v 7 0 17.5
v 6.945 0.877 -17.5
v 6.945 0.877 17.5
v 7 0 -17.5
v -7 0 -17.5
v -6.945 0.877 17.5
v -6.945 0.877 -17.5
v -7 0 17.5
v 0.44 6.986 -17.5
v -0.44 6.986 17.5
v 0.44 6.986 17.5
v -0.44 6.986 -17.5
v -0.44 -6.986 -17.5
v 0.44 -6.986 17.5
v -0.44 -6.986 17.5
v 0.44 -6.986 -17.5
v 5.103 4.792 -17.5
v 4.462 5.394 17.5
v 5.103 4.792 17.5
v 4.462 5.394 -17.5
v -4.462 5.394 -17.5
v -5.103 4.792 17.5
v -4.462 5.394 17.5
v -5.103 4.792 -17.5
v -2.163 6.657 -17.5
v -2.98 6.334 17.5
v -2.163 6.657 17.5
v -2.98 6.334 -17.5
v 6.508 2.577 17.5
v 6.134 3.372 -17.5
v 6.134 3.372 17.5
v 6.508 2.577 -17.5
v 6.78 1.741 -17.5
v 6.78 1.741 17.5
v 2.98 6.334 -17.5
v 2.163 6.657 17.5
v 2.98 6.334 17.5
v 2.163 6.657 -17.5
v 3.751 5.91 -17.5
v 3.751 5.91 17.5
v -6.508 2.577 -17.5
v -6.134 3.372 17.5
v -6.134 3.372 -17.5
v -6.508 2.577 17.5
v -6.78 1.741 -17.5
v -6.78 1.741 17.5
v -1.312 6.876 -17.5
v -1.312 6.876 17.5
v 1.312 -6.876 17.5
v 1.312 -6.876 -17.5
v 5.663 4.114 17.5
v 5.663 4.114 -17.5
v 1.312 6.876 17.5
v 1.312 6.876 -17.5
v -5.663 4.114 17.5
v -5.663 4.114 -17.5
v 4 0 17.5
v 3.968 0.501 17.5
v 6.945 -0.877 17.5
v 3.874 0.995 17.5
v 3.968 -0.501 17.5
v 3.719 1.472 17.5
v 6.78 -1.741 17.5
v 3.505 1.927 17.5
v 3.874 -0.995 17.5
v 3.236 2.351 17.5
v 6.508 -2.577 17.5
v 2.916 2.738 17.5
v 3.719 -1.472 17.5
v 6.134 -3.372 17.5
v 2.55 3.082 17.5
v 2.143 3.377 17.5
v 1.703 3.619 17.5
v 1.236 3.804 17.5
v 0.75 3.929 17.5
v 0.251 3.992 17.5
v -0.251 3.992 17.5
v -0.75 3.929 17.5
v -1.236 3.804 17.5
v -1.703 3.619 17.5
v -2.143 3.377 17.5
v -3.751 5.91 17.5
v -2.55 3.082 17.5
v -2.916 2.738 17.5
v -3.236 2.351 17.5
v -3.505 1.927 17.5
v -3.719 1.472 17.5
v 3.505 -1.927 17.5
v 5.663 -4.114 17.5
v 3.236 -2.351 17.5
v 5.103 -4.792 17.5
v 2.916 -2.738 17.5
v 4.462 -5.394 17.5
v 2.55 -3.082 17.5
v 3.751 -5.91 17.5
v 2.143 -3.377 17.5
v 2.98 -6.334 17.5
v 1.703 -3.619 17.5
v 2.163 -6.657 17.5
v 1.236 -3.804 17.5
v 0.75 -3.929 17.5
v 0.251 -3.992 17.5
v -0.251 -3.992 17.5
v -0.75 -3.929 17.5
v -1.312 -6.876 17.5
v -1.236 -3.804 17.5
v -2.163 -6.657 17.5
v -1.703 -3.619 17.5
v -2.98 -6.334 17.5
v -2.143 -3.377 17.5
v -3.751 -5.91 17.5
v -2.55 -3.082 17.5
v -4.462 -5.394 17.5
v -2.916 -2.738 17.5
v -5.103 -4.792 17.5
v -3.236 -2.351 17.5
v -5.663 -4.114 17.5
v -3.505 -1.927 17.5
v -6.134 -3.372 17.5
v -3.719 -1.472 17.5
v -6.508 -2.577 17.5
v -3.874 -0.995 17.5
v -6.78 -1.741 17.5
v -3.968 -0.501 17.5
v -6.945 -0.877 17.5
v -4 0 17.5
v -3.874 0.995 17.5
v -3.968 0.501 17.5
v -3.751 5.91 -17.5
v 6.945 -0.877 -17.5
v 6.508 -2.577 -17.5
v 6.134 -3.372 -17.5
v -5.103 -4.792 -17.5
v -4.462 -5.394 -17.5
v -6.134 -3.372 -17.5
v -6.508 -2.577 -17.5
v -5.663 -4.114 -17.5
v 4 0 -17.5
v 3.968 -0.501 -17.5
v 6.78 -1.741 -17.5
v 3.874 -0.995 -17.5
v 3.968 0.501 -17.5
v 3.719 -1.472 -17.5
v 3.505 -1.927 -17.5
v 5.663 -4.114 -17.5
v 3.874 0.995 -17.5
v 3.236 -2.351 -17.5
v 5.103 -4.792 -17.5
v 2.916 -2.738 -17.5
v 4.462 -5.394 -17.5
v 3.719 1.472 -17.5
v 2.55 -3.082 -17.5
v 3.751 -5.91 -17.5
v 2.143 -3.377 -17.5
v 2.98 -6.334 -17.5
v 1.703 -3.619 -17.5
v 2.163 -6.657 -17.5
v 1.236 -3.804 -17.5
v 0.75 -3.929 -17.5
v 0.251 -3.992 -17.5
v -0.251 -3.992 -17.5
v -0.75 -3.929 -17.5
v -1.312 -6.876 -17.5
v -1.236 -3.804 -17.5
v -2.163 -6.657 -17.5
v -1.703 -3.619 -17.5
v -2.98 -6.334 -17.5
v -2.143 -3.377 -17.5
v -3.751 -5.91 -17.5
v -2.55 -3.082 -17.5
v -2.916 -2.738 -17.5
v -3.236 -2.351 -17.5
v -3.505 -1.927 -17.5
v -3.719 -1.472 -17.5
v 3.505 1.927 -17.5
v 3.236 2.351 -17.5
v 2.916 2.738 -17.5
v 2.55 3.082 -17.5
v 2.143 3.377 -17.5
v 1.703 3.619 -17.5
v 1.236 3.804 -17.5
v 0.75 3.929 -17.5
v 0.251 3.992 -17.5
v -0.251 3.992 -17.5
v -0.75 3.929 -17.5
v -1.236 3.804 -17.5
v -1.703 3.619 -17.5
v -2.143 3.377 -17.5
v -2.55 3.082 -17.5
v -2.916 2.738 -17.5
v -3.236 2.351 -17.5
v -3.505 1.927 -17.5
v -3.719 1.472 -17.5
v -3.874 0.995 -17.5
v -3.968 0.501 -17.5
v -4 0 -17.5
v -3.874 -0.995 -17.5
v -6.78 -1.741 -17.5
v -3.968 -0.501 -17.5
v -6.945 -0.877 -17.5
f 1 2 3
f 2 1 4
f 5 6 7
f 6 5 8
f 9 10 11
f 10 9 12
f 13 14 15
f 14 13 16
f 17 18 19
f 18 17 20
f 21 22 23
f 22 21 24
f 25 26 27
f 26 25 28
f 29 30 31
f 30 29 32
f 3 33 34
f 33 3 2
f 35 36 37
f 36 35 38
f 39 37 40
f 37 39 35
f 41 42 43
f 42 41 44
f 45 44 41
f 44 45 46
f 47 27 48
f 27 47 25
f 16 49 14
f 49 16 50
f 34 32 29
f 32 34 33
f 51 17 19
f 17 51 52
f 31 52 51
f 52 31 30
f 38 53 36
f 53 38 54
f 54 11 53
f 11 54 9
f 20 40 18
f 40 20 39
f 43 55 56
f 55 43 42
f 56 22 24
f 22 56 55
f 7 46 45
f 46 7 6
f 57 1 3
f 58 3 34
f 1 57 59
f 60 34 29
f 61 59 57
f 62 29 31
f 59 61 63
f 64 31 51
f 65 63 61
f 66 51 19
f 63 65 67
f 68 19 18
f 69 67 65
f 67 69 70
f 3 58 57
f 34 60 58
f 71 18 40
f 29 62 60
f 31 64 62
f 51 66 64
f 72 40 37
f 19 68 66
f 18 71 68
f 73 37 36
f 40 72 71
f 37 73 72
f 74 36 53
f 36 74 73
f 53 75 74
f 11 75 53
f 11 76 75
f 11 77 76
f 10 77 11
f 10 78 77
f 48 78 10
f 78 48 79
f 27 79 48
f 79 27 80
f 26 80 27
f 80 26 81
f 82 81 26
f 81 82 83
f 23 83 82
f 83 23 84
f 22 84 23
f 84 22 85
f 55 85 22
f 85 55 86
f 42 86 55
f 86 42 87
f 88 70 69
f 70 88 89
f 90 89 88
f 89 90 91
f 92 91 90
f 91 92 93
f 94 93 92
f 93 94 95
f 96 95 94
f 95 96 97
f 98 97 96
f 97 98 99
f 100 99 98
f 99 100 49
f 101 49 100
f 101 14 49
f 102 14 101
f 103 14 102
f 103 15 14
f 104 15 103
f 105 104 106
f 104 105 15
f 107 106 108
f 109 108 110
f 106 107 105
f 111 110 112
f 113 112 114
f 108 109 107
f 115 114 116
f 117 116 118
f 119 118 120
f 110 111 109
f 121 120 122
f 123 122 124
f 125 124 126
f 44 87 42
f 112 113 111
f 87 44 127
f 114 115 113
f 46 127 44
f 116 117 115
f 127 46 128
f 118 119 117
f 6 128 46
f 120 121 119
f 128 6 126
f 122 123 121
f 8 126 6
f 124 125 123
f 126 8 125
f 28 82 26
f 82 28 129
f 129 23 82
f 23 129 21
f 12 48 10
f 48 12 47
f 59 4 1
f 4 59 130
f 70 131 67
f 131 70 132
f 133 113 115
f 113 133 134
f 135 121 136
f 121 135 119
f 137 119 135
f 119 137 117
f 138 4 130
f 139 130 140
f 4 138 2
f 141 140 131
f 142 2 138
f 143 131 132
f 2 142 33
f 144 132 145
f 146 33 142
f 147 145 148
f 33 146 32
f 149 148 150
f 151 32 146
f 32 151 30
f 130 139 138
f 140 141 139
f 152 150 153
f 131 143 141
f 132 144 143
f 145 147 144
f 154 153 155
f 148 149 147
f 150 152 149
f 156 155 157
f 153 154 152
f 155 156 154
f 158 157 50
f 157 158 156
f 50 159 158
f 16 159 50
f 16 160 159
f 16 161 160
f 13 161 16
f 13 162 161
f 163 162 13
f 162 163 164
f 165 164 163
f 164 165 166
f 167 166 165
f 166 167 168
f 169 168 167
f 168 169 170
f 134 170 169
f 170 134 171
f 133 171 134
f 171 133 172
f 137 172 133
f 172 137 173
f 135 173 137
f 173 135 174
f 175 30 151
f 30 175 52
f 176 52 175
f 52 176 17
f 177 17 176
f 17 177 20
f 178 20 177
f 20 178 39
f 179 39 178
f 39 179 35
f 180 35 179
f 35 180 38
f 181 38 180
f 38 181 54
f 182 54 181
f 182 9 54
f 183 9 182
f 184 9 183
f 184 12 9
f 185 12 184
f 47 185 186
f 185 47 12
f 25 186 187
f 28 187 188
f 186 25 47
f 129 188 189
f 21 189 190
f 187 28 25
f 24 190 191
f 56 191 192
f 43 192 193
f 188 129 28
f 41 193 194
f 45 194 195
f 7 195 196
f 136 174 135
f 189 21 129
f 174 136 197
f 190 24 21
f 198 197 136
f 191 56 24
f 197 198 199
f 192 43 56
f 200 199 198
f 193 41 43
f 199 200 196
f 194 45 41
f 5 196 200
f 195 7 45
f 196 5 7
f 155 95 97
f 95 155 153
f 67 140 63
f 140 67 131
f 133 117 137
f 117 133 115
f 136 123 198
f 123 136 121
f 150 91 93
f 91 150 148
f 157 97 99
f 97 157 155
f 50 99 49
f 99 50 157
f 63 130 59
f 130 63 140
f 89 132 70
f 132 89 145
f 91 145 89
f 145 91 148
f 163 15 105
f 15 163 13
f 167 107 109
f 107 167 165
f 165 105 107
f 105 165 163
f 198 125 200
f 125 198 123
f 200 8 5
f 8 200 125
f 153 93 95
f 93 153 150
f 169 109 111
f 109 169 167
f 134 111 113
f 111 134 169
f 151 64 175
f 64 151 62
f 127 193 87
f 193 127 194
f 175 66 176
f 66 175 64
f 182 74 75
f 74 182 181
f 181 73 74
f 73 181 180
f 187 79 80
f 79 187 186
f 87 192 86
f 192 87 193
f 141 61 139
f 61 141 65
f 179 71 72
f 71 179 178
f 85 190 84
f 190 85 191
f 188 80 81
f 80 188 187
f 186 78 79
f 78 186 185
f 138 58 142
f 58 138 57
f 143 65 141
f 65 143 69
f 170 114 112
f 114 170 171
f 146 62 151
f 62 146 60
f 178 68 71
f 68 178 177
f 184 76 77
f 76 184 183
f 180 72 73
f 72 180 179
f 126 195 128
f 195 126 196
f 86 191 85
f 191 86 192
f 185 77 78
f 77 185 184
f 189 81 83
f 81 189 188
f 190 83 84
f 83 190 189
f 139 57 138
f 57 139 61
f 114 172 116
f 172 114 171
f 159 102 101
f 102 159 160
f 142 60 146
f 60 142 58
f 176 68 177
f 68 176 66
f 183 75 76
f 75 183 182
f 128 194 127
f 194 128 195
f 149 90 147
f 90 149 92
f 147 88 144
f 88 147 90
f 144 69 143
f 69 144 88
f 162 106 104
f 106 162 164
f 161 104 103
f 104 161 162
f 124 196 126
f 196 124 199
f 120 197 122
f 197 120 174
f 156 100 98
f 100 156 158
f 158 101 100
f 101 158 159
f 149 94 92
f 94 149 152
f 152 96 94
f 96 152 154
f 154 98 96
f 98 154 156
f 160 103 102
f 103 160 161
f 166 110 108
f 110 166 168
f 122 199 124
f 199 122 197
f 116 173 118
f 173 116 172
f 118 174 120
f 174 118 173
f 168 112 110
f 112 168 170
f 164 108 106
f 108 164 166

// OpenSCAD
$fn = 50;


difference() {
	union() {
		translate(v = [0, 0, -17.5000000000]) {
			cylinder(h = 35, r = 7.0000000000);
		}
	}
	union() {
		translate(v = [0, 0, -100.0000000000]) {
			cylinder(h = 200, r = 4);
		}
	}
}
